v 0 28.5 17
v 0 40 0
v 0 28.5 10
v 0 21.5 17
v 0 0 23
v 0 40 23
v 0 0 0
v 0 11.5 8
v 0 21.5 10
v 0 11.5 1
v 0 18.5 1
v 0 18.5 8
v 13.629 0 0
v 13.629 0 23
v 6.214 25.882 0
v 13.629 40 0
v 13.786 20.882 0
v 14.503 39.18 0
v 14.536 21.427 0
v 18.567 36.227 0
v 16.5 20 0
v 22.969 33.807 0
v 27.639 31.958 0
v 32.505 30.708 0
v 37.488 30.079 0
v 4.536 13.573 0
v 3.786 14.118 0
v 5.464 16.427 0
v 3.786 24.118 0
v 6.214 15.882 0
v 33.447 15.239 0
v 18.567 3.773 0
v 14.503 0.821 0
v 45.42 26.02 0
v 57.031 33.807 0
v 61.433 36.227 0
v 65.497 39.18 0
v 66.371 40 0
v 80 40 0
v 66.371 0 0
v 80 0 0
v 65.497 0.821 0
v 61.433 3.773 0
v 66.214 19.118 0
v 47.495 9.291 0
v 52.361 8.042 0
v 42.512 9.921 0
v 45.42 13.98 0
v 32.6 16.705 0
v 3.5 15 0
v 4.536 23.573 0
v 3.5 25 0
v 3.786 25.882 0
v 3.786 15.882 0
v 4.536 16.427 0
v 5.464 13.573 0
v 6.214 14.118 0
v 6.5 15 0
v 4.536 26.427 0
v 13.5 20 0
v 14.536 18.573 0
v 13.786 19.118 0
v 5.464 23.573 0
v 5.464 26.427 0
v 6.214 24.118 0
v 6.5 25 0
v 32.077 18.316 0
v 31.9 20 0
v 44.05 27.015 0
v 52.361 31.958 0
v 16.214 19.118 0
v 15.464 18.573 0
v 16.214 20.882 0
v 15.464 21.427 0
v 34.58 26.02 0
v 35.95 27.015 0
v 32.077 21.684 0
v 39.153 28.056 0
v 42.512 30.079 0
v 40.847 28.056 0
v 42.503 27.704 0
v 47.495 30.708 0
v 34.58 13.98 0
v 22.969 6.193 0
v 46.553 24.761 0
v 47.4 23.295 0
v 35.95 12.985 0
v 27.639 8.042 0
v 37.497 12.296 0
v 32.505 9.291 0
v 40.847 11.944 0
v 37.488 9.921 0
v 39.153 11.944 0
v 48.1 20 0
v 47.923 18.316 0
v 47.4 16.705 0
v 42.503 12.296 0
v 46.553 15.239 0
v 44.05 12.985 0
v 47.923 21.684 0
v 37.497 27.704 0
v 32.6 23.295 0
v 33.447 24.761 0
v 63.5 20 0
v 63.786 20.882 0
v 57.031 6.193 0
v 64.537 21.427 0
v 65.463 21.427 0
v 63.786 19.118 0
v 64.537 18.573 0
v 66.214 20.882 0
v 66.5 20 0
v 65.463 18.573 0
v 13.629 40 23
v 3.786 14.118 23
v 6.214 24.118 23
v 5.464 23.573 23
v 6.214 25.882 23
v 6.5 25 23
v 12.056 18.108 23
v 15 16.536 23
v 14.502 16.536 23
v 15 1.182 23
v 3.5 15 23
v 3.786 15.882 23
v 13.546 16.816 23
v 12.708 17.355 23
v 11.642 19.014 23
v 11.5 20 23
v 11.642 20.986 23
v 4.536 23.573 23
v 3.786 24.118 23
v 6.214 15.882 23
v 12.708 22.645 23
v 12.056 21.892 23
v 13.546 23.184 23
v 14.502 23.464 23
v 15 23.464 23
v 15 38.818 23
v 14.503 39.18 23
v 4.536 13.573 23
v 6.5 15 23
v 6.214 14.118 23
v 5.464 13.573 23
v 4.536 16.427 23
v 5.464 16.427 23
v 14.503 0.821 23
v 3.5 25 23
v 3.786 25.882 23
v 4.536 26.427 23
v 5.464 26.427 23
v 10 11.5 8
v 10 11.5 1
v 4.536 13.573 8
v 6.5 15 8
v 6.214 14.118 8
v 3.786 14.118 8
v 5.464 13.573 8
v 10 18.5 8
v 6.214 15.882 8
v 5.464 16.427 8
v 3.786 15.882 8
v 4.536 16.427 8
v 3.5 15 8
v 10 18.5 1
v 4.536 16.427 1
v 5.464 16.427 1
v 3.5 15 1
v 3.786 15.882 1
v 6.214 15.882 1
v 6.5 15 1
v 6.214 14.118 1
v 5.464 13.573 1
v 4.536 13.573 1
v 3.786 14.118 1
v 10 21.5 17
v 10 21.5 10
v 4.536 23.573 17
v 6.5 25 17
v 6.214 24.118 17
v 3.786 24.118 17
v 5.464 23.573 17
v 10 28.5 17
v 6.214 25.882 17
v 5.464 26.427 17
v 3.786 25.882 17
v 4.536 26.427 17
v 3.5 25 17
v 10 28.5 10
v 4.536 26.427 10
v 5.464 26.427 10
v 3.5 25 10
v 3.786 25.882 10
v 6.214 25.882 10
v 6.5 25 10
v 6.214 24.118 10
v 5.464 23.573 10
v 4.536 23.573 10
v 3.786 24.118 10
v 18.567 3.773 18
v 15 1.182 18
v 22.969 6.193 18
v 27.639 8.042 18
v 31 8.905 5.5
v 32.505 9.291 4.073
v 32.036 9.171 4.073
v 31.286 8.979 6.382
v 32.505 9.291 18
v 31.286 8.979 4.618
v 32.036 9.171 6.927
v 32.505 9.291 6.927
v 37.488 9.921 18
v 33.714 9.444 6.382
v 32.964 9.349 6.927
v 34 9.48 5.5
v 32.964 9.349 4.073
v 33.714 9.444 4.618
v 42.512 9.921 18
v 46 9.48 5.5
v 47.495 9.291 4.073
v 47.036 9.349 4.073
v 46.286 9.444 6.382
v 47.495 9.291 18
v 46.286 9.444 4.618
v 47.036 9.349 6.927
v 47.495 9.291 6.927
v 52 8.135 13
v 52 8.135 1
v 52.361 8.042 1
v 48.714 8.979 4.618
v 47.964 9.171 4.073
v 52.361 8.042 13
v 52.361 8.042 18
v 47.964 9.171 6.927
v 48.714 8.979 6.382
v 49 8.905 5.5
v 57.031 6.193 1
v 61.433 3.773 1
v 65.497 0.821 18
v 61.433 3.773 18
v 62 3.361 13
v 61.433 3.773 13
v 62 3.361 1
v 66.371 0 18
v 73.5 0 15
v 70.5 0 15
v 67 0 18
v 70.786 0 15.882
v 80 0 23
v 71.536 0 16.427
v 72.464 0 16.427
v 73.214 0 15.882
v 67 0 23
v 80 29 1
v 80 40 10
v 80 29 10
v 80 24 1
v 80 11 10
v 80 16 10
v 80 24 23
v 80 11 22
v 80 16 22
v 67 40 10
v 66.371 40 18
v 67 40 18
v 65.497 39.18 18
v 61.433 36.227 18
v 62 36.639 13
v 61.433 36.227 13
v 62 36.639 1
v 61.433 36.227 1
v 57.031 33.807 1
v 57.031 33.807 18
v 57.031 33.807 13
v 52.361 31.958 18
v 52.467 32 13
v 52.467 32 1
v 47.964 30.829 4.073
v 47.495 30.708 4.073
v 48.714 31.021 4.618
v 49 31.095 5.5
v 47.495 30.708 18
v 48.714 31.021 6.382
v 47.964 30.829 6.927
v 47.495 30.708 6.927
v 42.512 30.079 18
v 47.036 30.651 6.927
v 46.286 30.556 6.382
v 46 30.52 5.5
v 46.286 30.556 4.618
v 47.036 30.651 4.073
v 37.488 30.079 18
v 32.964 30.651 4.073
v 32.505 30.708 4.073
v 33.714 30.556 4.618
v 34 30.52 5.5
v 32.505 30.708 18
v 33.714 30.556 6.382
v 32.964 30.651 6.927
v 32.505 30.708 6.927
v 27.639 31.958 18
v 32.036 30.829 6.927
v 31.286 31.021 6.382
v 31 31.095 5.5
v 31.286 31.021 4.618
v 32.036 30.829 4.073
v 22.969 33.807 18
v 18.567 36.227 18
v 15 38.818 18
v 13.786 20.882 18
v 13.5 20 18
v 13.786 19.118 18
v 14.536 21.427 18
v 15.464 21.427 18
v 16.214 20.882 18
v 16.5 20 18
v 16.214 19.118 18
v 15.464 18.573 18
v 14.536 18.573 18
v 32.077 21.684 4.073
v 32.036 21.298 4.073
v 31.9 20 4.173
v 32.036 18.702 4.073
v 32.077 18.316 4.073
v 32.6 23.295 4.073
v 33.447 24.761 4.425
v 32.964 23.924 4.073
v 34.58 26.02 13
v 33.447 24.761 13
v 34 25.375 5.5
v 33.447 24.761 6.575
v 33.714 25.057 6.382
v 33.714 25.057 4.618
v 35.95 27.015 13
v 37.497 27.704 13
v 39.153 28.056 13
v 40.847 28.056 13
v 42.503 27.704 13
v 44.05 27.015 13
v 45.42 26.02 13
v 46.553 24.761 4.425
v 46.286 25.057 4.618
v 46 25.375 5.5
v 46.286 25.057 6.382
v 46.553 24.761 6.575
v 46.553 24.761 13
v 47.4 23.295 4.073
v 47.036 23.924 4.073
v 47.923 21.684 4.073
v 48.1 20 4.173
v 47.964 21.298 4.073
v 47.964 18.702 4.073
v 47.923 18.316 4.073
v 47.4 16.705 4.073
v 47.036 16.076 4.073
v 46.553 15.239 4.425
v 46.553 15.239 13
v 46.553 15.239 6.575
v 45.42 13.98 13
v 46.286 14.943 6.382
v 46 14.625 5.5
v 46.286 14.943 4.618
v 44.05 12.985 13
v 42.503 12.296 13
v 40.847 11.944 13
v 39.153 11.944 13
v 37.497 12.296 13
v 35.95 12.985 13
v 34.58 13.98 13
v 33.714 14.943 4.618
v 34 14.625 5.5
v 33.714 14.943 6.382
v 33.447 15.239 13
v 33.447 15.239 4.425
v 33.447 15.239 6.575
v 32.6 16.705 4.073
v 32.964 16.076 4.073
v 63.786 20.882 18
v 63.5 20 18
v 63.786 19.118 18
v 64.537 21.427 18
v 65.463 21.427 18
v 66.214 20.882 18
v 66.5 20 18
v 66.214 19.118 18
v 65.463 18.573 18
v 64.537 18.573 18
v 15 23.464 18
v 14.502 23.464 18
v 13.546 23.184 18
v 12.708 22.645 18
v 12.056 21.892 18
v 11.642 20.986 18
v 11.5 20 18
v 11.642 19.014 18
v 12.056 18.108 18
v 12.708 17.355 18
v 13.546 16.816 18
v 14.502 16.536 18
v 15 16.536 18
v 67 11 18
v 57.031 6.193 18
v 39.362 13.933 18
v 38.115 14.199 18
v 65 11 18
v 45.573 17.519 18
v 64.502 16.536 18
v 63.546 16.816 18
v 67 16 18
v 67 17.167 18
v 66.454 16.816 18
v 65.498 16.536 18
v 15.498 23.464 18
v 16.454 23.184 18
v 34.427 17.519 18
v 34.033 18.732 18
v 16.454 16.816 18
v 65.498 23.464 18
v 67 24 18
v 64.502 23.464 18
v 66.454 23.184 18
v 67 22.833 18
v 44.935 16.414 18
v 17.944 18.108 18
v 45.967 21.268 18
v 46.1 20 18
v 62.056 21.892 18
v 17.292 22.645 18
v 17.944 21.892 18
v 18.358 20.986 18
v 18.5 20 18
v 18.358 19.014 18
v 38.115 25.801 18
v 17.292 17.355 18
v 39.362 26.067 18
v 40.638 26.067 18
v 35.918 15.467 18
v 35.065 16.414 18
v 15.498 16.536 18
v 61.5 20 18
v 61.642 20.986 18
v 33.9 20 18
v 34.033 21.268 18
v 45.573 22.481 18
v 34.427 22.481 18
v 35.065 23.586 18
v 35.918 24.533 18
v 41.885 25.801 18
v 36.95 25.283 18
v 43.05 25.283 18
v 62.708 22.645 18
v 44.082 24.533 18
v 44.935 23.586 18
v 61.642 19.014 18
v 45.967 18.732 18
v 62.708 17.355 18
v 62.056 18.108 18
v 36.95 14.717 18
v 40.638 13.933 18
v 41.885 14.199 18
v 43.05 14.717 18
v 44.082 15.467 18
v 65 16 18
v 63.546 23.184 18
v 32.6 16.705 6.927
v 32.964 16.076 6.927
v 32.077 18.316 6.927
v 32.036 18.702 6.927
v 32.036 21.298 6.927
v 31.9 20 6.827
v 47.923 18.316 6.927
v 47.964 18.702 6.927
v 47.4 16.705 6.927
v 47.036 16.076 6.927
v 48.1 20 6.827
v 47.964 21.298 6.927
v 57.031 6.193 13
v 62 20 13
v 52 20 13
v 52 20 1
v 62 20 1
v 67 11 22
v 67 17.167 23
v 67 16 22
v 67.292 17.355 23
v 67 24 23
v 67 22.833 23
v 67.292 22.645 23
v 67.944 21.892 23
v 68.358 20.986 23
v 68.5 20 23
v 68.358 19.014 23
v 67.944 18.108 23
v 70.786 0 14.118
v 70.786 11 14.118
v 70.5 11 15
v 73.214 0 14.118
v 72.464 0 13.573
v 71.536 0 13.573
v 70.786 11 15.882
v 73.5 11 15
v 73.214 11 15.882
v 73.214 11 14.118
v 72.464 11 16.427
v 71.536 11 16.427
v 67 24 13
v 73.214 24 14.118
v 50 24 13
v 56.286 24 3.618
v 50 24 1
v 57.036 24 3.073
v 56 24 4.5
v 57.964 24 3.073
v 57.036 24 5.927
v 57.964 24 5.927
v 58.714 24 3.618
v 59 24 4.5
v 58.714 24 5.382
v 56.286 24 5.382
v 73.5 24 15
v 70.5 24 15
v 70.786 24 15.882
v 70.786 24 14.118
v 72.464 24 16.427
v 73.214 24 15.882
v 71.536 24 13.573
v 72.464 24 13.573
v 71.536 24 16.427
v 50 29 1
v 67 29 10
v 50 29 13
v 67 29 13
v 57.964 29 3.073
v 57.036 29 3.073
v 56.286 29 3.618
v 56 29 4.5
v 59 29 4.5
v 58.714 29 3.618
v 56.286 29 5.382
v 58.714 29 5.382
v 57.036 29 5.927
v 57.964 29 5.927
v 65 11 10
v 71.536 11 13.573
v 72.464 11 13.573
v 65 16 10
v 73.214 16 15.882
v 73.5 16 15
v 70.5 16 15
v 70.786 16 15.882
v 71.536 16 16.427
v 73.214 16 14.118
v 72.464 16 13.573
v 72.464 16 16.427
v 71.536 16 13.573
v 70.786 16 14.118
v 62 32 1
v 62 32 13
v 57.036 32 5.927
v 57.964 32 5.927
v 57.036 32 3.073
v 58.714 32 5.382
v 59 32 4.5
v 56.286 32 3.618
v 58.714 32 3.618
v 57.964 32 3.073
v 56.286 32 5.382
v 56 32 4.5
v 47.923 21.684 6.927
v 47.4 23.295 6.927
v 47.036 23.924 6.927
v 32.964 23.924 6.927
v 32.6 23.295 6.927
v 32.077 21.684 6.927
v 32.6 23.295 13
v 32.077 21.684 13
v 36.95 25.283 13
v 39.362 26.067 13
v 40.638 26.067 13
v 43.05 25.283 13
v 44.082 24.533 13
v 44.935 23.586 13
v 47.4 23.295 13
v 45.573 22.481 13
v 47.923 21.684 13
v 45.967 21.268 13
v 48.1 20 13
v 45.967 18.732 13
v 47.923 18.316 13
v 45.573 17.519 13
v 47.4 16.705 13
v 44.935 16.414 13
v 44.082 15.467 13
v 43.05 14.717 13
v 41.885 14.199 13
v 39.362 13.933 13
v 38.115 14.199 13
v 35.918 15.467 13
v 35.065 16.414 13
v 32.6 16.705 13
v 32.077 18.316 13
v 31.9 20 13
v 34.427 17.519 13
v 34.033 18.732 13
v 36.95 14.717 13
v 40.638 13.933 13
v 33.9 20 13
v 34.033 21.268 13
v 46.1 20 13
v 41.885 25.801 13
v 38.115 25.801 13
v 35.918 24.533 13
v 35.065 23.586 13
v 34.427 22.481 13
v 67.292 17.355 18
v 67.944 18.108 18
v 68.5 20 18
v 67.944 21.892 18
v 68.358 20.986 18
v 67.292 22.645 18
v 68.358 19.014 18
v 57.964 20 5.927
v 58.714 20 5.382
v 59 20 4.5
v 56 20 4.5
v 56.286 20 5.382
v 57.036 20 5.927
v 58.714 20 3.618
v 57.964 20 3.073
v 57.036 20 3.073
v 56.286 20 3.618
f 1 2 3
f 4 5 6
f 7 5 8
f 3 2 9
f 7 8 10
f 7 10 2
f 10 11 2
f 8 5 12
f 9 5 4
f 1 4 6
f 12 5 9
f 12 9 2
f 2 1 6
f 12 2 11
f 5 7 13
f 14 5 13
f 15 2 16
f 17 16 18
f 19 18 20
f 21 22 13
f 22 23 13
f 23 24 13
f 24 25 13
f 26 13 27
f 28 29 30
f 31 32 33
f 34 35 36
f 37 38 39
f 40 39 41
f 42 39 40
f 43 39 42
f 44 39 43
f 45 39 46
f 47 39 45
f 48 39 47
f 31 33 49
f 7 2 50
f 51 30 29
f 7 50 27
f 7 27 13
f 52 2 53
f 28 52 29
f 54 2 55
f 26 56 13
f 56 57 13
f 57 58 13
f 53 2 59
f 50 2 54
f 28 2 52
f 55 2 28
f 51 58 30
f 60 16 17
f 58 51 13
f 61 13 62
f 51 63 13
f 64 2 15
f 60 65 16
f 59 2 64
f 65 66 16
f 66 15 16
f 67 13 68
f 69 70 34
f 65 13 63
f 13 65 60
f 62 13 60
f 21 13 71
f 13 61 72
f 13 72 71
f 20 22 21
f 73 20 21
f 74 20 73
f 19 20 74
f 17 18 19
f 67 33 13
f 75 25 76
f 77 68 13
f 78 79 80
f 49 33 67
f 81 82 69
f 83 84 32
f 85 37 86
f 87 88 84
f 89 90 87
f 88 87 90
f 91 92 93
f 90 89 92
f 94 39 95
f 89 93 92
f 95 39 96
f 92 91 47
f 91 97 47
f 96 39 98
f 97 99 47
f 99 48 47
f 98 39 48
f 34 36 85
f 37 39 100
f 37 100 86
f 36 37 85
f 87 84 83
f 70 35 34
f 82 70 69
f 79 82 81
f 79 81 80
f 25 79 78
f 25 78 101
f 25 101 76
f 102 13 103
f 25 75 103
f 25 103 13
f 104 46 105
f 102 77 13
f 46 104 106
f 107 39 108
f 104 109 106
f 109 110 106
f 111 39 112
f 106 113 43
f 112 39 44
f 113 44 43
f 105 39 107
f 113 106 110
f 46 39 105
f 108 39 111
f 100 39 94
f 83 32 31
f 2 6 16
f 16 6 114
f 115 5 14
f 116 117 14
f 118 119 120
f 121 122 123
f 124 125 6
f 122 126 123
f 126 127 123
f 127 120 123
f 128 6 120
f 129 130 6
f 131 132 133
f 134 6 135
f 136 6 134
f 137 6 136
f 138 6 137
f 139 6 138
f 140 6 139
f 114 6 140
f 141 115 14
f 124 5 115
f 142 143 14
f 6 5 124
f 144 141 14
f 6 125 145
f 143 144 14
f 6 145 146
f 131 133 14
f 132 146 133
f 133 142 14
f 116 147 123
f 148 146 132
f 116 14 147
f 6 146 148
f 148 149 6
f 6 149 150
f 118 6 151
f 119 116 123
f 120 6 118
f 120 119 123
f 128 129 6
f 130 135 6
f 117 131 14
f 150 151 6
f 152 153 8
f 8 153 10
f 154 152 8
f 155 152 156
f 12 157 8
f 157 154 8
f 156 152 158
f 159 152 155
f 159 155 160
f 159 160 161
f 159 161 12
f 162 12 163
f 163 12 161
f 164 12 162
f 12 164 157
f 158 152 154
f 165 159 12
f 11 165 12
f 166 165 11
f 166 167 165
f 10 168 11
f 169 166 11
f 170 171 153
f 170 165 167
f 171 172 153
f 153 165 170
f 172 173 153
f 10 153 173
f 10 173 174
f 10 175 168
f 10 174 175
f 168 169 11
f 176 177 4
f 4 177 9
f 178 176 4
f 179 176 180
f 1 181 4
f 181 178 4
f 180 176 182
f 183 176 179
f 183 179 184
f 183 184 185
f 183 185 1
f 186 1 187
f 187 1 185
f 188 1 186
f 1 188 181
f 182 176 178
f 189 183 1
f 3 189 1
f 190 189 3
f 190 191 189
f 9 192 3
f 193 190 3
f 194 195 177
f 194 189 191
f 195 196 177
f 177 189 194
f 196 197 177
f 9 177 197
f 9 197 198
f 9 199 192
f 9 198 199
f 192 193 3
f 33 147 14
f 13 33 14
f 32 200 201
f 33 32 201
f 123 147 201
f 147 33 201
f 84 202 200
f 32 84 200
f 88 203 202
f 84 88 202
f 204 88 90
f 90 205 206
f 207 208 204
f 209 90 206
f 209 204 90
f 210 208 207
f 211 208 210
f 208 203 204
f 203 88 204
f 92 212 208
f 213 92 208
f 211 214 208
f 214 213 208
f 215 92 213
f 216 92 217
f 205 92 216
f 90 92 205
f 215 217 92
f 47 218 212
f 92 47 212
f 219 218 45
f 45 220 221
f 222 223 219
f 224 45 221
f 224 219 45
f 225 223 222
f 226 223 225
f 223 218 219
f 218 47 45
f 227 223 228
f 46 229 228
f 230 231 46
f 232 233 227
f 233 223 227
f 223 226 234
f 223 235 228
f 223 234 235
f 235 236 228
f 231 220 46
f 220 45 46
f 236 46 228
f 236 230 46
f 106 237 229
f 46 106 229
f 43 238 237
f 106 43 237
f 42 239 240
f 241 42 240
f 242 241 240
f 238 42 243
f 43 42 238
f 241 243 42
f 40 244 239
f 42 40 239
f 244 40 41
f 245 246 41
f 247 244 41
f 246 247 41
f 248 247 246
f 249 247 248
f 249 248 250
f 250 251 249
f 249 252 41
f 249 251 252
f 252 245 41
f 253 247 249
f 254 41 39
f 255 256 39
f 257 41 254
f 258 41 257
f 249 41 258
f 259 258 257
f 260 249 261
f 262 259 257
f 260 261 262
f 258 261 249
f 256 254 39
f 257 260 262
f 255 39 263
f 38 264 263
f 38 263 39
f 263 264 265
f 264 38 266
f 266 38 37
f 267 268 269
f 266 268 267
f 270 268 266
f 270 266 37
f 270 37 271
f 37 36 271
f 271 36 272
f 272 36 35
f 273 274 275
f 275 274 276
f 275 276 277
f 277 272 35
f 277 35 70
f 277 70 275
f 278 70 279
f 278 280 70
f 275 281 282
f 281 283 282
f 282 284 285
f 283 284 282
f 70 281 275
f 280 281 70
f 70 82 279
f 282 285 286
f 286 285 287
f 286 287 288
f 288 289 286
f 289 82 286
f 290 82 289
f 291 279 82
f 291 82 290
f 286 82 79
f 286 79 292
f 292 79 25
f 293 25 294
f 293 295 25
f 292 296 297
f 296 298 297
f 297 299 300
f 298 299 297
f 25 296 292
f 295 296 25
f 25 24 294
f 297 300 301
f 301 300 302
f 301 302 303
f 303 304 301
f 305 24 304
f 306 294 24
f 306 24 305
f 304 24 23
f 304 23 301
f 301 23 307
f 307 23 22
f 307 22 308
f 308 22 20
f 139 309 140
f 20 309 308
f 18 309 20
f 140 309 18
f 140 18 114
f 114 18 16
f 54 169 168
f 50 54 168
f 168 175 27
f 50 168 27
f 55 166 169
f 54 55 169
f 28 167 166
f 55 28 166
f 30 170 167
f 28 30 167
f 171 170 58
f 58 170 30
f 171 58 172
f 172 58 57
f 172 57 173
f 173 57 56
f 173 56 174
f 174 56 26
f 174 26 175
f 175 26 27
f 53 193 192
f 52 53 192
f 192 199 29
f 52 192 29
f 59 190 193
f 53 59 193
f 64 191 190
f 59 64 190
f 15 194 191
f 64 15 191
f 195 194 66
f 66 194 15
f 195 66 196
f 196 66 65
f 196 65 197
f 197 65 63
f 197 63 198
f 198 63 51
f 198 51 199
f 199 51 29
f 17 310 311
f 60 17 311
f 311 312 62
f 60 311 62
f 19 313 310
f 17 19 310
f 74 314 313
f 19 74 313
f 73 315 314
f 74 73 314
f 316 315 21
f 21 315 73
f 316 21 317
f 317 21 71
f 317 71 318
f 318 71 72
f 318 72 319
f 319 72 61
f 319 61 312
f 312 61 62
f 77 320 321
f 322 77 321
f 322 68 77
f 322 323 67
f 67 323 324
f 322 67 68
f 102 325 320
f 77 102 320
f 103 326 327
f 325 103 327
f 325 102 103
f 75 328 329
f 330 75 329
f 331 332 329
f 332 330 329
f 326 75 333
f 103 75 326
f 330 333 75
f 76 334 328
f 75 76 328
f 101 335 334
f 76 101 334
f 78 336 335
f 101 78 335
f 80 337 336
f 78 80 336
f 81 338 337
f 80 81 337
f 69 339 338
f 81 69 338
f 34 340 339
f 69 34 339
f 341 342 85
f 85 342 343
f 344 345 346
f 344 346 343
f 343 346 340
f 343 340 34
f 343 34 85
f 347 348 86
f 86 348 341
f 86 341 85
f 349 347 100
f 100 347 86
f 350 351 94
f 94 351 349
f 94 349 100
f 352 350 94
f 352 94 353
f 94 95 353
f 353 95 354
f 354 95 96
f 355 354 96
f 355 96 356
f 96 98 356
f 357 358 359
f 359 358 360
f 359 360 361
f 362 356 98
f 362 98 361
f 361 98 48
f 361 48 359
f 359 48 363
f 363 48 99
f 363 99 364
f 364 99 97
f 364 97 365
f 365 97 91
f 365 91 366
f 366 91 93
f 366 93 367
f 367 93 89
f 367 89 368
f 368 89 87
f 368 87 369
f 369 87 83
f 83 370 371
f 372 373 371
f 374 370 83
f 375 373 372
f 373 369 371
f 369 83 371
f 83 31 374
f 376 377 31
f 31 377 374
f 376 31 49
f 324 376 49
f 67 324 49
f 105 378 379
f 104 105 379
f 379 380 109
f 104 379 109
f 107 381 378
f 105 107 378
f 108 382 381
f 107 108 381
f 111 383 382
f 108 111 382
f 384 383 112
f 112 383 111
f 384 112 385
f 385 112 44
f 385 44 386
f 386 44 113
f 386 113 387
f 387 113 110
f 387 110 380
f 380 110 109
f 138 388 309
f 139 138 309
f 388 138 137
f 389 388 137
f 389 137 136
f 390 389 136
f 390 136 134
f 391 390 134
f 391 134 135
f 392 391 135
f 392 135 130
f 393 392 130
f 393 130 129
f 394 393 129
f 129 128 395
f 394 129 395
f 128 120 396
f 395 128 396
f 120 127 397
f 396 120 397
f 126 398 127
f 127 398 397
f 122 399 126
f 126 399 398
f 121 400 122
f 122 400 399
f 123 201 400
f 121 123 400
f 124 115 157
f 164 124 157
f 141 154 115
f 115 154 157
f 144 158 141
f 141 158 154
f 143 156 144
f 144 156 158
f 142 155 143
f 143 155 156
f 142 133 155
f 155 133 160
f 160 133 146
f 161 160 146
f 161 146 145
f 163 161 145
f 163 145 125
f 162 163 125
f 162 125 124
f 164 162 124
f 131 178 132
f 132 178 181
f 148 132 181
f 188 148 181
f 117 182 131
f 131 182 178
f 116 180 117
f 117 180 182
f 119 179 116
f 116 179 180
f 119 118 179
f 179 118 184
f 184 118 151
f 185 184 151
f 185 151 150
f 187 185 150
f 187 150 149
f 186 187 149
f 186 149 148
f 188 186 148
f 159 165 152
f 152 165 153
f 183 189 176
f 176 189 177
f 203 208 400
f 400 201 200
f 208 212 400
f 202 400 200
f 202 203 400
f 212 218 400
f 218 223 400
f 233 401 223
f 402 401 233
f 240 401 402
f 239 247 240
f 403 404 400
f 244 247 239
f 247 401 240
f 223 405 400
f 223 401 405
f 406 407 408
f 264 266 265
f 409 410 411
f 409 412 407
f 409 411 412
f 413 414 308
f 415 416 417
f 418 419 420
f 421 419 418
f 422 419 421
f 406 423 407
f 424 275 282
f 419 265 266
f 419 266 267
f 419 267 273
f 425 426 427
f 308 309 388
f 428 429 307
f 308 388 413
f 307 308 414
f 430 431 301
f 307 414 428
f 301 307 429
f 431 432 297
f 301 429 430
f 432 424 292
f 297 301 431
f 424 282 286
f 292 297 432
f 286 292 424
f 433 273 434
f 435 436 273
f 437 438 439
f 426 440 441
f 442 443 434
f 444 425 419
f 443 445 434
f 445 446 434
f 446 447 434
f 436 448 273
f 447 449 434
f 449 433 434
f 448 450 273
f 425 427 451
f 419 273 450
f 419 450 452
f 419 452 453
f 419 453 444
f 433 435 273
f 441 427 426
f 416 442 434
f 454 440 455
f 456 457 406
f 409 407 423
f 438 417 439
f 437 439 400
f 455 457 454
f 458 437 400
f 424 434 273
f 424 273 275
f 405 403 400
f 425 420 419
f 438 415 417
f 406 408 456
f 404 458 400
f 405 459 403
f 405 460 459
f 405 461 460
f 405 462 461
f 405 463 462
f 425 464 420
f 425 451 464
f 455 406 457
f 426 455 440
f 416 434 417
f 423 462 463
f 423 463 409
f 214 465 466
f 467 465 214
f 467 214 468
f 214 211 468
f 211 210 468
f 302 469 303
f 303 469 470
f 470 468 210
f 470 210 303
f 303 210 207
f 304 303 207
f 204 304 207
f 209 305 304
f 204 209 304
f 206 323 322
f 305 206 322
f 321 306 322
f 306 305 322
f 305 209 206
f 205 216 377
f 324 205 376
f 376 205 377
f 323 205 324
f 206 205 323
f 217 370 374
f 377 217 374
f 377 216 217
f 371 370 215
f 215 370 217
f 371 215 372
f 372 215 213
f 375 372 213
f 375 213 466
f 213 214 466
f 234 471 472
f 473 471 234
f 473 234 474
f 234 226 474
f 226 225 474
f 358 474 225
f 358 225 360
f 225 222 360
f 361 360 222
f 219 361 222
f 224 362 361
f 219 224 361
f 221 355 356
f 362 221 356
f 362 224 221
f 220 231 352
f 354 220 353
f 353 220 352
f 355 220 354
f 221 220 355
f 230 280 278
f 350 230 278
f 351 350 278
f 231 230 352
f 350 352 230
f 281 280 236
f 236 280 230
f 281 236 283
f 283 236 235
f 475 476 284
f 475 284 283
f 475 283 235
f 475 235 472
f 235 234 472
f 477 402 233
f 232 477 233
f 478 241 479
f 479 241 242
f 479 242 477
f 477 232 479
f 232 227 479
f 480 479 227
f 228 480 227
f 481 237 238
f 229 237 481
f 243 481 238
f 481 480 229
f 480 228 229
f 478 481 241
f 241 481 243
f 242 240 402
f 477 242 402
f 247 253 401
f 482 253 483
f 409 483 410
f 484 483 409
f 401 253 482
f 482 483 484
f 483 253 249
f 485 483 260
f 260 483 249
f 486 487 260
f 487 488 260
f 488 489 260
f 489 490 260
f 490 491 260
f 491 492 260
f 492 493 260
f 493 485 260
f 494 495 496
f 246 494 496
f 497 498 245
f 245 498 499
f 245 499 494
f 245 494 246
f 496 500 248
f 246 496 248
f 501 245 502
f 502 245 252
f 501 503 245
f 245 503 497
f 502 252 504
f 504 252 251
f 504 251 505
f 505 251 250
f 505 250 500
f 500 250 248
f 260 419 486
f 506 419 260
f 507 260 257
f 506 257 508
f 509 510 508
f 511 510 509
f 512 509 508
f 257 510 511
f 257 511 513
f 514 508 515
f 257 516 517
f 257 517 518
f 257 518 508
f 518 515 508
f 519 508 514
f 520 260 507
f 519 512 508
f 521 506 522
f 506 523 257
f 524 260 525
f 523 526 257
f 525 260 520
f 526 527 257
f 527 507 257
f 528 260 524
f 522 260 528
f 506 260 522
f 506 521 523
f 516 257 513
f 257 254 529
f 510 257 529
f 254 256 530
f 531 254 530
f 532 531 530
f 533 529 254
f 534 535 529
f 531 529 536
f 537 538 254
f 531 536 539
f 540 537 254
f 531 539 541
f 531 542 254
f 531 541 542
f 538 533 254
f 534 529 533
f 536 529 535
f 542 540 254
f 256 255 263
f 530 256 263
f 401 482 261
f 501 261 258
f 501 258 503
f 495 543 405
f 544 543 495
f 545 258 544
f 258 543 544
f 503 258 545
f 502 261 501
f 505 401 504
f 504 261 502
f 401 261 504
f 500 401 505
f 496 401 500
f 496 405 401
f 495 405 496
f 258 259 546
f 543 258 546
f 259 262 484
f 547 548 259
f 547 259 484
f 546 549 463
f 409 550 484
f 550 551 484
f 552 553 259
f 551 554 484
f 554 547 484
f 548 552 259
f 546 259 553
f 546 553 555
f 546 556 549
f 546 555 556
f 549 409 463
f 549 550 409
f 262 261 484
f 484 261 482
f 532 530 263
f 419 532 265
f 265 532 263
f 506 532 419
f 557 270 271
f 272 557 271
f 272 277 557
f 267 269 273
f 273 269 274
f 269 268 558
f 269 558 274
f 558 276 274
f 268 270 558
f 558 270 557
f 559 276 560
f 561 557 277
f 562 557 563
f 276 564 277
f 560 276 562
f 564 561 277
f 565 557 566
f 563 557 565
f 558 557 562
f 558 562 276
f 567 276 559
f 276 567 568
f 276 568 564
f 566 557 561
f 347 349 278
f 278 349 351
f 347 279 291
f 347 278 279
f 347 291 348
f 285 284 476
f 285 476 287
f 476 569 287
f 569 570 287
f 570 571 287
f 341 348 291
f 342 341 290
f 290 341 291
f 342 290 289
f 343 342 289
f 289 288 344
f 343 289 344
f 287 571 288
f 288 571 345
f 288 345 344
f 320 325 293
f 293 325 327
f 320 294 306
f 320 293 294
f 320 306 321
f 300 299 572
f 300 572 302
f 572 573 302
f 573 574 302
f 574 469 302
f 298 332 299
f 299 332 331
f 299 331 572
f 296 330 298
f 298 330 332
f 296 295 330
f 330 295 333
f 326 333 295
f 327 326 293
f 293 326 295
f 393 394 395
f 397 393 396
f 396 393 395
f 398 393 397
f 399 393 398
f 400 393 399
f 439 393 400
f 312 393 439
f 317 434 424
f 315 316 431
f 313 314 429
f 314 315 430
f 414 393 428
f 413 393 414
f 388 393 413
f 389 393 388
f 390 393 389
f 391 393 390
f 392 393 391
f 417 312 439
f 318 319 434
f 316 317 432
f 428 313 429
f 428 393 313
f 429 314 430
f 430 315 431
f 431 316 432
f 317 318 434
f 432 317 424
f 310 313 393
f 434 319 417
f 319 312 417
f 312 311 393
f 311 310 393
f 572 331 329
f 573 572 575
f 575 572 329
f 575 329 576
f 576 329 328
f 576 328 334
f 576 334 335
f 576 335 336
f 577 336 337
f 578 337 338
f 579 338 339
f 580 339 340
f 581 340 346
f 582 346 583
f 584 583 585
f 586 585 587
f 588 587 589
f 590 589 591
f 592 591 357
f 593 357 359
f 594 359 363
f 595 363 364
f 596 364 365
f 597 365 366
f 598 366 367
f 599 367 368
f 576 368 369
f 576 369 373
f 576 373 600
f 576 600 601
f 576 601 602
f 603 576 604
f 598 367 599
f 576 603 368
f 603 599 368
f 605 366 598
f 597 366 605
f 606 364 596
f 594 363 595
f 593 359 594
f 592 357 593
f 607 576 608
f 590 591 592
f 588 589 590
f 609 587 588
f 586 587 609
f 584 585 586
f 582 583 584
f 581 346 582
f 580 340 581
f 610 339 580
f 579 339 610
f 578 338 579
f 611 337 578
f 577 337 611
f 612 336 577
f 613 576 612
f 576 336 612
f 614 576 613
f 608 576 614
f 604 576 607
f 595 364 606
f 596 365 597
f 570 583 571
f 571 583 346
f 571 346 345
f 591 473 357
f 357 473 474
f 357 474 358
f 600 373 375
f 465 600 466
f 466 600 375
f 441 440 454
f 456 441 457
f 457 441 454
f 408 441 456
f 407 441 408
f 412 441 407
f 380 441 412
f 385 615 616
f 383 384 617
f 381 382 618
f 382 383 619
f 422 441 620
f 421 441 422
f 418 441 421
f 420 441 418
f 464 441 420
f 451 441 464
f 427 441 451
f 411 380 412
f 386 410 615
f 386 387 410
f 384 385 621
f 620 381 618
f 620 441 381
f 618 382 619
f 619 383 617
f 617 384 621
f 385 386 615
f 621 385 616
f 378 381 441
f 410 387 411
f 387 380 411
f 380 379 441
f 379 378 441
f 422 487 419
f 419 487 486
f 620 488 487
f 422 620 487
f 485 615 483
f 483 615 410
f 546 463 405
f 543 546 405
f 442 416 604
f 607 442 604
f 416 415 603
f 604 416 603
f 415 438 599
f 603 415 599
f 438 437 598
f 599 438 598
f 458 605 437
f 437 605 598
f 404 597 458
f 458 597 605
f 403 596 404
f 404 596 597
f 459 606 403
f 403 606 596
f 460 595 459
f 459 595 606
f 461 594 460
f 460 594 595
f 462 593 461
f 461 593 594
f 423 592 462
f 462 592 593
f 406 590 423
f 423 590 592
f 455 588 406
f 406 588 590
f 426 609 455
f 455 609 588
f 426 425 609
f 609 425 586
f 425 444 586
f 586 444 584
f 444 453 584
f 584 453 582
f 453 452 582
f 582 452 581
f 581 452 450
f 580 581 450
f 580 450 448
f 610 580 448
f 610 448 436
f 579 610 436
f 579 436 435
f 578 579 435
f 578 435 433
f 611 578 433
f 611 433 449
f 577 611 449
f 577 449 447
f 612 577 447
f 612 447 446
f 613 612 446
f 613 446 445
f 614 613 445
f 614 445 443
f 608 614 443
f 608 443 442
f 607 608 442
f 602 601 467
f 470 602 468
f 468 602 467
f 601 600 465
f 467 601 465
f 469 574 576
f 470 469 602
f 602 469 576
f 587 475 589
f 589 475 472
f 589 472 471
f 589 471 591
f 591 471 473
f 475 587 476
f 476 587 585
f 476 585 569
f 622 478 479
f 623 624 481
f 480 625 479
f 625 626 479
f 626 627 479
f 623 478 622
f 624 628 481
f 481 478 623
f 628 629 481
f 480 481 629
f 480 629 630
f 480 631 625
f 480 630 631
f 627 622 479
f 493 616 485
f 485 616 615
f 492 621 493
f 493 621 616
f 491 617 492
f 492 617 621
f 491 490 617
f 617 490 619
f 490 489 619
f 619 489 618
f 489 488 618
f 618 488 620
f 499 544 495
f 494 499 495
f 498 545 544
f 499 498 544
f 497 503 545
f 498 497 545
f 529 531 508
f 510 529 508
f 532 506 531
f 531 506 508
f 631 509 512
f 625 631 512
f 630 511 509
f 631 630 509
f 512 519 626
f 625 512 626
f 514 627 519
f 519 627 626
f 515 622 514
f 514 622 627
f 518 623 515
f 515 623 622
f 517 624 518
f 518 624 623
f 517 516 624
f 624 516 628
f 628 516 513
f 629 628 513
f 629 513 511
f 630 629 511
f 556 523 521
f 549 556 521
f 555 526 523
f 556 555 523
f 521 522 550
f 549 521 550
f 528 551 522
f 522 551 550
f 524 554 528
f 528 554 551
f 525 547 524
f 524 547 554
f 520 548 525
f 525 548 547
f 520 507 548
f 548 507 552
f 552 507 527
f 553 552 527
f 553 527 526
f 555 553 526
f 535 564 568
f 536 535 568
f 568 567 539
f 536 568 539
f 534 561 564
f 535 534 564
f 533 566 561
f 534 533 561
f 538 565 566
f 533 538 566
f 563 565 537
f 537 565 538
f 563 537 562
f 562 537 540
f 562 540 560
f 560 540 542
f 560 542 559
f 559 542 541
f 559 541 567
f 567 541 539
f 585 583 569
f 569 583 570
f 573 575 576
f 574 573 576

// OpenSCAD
width = 80;
depth = 40;
bottomthickness=18;
towerheight=5;
holedistance=50;
od624=13;
timingbeltwidth=2;
timingbeltheight=7;
e3dwidth=16.2;
e3dwidthid=12;
e3dheight=18-4;
difference() {

	union() {
		cube([width,depth,bottomthickness],center=false);

		translate([0,0,bottomthickness])
		cube([15,depth,towerheight],center=false);

		translate([width-13,0,bottomthickness])
		cube([13,depth,towerheight],center=false);

		translate([width-13,0,1+timingbeltheight+2])
		cube([13,24,towerheight],center=false);
	}

	/* extruder main hole */
	translate([width/2,depth/2,-1]){
		cylinder(h=e3dheight,r=e3dwidth/2,center=false,$fs=1);
		cylinder(h=100,r=e3dwidth/2-2,center=false,$fs=1);
	}

	/* large cylinders */
	translate([width/2,-30,-1])
		cylinder(h=100,r=40,center=false,$fn=50);

	translate([width/2,depth+30,-1])
		cylinder(h=100,r=40,center=false,$fn=50);

  /* extruder holes */
	translate([width/2-e3dwidthid/2-3/2,0,e3dheight-7-3/2])
		rotate([-90,0,0])
			cylinder(h=100,r=3/2,center=false,$fs=1);
	
	translate([width/2+e3dwidthid/2+3/2,0,e3dheight-7-3/2])
		rotate([-90,0,0])
			cylinder(h=100,r=3/2,center=false,$fs=1);

	translate([width/2+17.5,0,3+3/2])
		rotate([-90,0,0])
			cylinder(h=100,r=3/2,center=false,$fs=1);

	translate([width-8,0,15])
		rotate([-90,0,0])
			cylinder(h=100,r=3/2,center=false,$fs=1);

	translate([width/2-holedistance/2,depth/2,-1])
	cylinder(h=100,r=3/2,center=false,$fs=1);

	translate([width/2+holedistance/2,depth/2,-1])
	cylinder(h=100,r=3/2,center=false,$fs=1);
	
	translate([width/2-holedistance/2,depth/2,bottomthickness])
	cylinder(h=100,r=7/2,center=false,$fs=1);

	translate([width/2+holedistance/2,depth/2,bottomthickness])
	cylinder(h=100,r=7/2,center=false,$fs=1);

	translate([5,depth/2-5,-1])
	cylinder(h=100,r=3/2,center=false,$fs=1);

	translate([5,depth/2+5,-1])
	cylinder(h=100,r=3/2,center=false,$fs=1);


	translate([0,depth/2-od624/2-2,1])
		cube([10,7,timingbeltheight],center=false);

	translate([0,depth/2+od624/2-5,1+timingbeltheight+2])
		cube([10,7,timingbeltheight],center=false);


	translate([width-30,depth/2+od624/2-5/2,1])
	cube([30,5,timingbeltheight+5],center=false);

	translate([width-13,depth/2+od624/2-5/2,10])
	cube([30,25,timingbeltheight+105],center=false);

	translate([width-28,0,1])
		cube([10,20,timingbeltheight+5],center=false);

	translate([width-28,depth-8,1])
		cube([10,8,timingbeltheight+5],center=false);

	translate([width-15,depth/2-od624/2-5/2,1+timingbeltheight+2])
		cube([15,5,timingbeltheight+5],center=false);
}
